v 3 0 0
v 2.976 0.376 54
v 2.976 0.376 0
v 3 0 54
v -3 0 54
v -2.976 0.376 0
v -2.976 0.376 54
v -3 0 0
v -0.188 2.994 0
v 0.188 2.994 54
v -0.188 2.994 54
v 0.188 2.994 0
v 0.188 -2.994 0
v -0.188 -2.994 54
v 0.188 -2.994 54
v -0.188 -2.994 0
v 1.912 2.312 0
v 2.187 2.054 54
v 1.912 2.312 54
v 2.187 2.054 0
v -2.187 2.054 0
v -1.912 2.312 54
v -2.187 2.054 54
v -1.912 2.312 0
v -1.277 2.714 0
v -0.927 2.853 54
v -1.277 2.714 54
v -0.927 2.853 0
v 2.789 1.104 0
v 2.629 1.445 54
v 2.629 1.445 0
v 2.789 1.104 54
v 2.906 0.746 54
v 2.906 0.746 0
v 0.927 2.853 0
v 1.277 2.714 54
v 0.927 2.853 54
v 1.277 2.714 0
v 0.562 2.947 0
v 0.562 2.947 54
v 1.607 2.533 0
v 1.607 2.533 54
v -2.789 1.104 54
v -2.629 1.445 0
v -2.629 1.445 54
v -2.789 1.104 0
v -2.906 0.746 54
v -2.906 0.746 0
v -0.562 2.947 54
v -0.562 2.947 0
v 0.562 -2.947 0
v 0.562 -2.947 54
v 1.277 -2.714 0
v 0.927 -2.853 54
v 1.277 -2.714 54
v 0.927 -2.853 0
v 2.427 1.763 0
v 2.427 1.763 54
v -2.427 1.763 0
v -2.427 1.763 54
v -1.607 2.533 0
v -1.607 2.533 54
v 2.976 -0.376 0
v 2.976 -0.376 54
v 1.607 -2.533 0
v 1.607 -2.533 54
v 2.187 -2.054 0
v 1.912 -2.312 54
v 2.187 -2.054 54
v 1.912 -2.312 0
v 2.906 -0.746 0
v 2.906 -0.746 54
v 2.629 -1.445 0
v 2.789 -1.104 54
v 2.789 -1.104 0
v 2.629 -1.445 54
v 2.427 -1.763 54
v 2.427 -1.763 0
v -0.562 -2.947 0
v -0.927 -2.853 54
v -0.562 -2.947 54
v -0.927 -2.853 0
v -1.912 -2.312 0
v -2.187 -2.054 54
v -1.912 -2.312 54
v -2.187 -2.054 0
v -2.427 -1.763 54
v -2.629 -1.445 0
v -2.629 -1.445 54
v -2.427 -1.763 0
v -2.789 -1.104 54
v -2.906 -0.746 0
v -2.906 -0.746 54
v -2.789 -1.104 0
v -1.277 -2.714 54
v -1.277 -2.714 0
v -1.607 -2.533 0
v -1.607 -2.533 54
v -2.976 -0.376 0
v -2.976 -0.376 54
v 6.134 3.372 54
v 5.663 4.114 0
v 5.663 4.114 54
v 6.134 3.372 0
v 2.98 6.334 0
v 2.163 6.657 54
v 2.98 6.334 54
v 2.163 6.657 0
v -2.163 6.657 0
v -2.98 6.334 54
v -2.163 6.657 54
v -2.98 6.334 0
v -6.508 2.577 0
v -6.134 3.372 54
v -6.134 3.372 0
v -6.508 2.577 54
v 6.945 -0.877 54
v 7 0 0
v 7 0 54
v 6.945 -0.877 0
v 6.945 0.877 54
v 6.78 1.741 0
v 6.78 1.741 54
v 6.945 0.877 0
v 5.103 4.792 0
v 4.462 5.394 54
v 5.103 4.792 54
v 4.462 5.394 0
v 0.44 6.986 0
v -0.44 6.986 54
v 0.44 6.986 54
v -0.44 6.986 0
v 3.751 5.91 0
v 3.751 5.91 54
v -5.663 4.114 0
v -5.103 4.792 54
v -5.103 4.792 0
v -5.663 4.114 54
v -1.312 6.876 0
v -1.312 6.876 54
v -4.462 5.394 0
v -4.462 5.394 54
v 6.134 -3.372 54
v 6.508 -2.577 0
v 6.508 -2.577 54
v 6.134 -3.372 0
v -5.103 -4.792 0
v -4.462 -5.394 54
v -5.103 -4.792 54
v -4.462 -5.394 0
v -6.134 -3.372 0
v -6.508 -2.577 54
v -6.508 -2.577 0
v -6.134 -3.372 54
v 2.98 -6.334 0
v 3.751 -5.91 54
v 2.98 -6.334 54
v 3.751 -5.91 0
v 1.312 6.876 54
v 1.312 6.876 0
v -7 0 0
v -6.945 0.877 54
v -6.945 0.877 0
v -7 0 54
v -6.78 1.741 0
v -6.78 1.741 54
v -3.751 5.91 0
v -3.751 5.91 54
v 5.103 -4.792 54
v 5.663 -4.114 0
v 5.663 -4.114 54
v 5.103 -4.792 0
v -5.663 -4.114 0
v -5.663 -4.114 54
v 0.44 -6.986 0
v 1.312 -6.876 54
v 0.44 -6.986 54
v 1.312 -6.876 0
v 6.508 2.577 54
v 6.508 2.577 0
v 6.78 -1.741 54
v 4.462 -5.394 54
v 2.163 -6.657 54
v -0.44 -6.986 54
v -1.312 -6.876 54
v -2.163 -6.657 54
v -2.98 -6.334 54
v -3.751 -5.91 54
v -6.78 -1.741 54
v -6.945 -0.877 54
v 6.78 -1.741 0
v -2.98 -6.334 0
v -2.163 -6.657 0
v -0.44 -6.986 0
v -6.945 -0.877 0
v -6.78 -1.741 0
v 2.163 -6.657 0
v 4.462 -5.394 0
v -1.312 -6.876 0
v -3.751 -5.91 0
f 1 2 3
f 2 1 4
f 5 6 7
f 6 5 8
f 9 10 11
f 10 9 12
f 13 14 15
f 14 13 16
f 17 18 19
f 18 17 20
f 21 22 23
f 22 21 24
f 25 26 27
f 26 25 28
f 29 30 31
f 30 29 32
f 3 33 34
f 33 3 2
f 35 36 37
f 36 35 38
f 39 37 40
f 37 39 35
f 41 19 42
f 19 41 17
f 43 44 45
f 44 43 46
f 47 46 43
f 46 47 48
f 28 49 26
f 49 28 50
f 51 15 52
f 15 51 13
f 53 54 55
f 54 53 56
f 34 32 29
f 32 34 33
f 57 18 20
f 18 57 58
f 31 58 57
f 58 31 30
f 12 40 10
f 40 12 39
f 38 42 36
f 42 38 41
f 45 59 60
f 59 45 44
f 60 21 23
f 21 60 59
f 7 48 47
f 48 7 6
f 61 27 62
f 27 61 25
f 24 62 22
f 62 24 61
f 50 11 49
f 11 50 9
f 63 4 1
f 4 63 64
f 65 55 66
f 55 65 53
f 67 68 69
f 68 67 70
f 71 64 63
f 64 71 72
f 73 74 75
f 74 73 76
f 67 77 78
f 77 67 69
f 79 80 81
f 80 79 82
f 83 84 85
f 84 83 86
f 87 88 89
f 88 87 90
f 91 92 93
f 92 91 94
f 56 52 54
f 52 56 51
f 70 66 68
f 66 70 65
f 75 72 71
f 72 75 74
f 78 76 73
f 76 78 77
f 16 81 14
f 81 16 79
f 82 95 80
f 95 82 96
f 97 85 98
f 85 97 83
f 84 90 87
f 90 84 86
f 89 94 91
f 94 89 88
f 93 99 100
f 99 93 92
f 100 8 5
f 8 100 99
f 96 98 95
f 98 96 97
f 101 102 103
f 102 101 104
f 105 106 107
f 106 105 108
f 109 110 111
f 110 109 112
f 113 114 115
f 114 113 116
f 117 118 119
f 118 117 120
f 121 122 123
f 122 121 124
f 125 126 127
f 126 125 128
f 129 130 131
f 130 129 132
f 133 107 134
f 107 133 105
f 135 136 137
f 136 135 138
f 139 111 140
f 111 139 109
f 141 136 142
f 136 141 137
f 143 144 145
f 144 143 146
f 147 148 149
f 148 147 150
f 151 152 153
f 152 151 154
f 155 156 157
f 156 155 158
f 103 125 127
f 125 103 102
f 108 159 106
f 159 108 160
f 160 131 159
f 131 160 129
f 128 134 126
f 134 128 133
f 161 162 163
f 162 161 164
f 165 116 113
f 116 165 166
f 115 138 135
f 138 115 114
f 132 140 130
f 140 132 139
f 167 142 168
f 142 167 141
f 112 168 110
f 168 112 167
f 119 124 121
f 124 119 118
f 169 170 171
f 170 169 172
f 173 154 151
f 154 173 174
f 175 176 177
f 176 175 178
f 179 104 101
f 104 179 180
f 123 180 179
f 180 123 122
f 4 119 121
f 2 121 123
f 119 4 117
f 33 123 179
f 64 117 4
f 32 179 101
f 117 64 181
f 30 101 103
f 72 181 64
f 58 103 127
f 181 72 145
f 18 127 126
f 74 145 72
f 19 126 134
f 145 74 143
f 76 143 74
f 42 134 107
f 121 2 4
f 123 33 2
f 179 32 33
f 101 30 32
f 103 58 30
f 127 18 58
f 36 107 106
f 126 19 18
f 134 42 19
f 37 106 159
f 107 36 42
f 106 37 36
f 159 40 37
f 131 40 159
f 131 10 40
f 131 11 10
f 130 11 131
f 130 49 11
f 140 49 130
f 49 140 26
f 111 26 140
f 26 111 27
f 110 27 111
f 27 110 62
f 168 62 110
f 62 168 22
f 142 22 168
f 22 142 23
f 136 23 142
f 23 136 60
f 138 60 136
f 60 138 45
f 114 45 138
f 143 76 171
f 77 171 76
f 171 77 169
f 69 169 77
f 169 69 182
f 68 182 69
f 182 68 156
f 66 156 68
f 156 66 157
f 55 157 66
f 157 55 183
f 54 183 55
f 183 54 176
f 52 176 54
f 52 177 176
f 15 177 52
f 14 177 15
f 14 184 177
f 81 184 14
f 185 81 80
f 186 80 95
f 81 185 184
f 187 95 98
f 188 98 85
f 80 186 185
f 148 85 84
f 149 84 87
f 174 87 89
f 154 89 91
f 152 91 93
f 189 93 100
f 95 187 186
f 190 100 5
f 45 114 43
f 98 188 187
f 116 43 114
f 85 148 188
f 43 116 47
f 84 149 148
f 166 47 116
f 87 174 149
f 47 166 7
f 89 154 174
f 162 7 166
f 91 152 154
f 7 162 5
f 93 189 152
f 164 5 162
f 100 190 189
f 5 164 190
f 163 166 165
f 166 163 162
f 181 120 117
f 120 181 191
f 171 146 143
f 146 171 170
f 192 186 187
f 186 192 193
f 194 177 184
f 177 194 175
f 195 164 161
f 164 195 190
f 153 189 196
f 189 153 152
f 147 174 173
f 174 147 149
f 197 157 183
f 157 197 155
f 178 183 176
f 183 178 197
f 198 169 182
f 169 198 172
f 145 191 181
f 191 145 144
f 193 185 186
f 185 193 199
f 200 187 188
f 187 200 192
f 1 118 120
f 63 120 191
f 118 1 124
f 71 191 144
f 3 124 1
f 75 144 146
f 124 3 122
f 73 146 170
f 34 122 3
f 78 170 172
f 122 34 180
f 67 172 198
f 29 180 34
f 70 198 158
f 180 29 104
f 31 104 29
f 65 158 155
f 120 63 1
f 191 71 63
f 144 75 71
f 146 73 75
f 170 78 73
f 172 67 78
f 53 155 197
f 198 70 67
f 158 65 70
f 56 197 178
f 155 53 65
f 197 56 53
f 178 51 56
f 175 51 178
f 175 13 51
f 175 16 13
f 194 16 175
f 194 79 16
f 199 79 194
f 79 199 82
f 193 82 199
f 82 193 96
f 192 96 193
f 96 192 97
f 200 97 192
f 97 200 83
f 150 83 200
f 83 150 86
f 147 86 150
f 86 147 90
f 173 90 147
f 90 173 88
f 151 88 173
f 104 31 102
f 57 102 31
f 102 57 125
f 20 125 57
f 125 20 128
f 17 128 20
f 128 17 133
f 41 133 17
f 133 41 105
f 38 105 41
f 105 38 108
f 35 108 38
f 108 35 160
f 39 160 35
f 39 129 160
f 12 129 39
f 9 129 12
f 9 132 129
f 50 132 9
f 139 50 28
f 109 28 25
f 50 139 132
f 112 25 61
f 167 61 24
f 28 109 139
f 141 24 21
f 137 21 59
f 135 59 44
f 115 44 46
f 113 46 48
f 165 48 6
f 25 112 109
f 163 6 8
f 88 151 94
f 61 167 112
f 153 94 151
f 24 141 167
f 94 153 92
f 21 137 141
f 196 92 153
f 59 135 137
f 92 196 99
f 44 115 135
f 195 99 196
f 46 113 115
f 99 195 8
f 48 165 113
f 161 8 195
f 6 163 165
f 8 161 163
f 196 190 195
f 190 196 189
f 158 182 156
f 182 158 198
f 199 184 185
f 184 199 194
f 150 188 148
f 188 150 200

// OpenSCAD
$fn = 50;


difference() {
	union() {
		cylinder(h = 54, r = 7.0000000000);
	}
	union() {
		translate(v = [0.0000000000, 0.0000000000, -100.0000000000]) {
			cylinder(h = 200, r = 3.0000000000);
		}
		translate(v = [0.0000000000, 0.0000000000, -100.0000000000]) {
			cylinder(h = 200, r = 3.0000000000);
		}
		translate(v = [0.0000000000, 0.0000000000, -100.0000000000]) {
			cylinder(h = 200, r = 3.0000000000);
		}
		translate(v = [0.0000000000, 0.0000000000, -100.0000000000]) {
			cylinder(h = 200, r = 3.0000000000);
		}
	}
}
